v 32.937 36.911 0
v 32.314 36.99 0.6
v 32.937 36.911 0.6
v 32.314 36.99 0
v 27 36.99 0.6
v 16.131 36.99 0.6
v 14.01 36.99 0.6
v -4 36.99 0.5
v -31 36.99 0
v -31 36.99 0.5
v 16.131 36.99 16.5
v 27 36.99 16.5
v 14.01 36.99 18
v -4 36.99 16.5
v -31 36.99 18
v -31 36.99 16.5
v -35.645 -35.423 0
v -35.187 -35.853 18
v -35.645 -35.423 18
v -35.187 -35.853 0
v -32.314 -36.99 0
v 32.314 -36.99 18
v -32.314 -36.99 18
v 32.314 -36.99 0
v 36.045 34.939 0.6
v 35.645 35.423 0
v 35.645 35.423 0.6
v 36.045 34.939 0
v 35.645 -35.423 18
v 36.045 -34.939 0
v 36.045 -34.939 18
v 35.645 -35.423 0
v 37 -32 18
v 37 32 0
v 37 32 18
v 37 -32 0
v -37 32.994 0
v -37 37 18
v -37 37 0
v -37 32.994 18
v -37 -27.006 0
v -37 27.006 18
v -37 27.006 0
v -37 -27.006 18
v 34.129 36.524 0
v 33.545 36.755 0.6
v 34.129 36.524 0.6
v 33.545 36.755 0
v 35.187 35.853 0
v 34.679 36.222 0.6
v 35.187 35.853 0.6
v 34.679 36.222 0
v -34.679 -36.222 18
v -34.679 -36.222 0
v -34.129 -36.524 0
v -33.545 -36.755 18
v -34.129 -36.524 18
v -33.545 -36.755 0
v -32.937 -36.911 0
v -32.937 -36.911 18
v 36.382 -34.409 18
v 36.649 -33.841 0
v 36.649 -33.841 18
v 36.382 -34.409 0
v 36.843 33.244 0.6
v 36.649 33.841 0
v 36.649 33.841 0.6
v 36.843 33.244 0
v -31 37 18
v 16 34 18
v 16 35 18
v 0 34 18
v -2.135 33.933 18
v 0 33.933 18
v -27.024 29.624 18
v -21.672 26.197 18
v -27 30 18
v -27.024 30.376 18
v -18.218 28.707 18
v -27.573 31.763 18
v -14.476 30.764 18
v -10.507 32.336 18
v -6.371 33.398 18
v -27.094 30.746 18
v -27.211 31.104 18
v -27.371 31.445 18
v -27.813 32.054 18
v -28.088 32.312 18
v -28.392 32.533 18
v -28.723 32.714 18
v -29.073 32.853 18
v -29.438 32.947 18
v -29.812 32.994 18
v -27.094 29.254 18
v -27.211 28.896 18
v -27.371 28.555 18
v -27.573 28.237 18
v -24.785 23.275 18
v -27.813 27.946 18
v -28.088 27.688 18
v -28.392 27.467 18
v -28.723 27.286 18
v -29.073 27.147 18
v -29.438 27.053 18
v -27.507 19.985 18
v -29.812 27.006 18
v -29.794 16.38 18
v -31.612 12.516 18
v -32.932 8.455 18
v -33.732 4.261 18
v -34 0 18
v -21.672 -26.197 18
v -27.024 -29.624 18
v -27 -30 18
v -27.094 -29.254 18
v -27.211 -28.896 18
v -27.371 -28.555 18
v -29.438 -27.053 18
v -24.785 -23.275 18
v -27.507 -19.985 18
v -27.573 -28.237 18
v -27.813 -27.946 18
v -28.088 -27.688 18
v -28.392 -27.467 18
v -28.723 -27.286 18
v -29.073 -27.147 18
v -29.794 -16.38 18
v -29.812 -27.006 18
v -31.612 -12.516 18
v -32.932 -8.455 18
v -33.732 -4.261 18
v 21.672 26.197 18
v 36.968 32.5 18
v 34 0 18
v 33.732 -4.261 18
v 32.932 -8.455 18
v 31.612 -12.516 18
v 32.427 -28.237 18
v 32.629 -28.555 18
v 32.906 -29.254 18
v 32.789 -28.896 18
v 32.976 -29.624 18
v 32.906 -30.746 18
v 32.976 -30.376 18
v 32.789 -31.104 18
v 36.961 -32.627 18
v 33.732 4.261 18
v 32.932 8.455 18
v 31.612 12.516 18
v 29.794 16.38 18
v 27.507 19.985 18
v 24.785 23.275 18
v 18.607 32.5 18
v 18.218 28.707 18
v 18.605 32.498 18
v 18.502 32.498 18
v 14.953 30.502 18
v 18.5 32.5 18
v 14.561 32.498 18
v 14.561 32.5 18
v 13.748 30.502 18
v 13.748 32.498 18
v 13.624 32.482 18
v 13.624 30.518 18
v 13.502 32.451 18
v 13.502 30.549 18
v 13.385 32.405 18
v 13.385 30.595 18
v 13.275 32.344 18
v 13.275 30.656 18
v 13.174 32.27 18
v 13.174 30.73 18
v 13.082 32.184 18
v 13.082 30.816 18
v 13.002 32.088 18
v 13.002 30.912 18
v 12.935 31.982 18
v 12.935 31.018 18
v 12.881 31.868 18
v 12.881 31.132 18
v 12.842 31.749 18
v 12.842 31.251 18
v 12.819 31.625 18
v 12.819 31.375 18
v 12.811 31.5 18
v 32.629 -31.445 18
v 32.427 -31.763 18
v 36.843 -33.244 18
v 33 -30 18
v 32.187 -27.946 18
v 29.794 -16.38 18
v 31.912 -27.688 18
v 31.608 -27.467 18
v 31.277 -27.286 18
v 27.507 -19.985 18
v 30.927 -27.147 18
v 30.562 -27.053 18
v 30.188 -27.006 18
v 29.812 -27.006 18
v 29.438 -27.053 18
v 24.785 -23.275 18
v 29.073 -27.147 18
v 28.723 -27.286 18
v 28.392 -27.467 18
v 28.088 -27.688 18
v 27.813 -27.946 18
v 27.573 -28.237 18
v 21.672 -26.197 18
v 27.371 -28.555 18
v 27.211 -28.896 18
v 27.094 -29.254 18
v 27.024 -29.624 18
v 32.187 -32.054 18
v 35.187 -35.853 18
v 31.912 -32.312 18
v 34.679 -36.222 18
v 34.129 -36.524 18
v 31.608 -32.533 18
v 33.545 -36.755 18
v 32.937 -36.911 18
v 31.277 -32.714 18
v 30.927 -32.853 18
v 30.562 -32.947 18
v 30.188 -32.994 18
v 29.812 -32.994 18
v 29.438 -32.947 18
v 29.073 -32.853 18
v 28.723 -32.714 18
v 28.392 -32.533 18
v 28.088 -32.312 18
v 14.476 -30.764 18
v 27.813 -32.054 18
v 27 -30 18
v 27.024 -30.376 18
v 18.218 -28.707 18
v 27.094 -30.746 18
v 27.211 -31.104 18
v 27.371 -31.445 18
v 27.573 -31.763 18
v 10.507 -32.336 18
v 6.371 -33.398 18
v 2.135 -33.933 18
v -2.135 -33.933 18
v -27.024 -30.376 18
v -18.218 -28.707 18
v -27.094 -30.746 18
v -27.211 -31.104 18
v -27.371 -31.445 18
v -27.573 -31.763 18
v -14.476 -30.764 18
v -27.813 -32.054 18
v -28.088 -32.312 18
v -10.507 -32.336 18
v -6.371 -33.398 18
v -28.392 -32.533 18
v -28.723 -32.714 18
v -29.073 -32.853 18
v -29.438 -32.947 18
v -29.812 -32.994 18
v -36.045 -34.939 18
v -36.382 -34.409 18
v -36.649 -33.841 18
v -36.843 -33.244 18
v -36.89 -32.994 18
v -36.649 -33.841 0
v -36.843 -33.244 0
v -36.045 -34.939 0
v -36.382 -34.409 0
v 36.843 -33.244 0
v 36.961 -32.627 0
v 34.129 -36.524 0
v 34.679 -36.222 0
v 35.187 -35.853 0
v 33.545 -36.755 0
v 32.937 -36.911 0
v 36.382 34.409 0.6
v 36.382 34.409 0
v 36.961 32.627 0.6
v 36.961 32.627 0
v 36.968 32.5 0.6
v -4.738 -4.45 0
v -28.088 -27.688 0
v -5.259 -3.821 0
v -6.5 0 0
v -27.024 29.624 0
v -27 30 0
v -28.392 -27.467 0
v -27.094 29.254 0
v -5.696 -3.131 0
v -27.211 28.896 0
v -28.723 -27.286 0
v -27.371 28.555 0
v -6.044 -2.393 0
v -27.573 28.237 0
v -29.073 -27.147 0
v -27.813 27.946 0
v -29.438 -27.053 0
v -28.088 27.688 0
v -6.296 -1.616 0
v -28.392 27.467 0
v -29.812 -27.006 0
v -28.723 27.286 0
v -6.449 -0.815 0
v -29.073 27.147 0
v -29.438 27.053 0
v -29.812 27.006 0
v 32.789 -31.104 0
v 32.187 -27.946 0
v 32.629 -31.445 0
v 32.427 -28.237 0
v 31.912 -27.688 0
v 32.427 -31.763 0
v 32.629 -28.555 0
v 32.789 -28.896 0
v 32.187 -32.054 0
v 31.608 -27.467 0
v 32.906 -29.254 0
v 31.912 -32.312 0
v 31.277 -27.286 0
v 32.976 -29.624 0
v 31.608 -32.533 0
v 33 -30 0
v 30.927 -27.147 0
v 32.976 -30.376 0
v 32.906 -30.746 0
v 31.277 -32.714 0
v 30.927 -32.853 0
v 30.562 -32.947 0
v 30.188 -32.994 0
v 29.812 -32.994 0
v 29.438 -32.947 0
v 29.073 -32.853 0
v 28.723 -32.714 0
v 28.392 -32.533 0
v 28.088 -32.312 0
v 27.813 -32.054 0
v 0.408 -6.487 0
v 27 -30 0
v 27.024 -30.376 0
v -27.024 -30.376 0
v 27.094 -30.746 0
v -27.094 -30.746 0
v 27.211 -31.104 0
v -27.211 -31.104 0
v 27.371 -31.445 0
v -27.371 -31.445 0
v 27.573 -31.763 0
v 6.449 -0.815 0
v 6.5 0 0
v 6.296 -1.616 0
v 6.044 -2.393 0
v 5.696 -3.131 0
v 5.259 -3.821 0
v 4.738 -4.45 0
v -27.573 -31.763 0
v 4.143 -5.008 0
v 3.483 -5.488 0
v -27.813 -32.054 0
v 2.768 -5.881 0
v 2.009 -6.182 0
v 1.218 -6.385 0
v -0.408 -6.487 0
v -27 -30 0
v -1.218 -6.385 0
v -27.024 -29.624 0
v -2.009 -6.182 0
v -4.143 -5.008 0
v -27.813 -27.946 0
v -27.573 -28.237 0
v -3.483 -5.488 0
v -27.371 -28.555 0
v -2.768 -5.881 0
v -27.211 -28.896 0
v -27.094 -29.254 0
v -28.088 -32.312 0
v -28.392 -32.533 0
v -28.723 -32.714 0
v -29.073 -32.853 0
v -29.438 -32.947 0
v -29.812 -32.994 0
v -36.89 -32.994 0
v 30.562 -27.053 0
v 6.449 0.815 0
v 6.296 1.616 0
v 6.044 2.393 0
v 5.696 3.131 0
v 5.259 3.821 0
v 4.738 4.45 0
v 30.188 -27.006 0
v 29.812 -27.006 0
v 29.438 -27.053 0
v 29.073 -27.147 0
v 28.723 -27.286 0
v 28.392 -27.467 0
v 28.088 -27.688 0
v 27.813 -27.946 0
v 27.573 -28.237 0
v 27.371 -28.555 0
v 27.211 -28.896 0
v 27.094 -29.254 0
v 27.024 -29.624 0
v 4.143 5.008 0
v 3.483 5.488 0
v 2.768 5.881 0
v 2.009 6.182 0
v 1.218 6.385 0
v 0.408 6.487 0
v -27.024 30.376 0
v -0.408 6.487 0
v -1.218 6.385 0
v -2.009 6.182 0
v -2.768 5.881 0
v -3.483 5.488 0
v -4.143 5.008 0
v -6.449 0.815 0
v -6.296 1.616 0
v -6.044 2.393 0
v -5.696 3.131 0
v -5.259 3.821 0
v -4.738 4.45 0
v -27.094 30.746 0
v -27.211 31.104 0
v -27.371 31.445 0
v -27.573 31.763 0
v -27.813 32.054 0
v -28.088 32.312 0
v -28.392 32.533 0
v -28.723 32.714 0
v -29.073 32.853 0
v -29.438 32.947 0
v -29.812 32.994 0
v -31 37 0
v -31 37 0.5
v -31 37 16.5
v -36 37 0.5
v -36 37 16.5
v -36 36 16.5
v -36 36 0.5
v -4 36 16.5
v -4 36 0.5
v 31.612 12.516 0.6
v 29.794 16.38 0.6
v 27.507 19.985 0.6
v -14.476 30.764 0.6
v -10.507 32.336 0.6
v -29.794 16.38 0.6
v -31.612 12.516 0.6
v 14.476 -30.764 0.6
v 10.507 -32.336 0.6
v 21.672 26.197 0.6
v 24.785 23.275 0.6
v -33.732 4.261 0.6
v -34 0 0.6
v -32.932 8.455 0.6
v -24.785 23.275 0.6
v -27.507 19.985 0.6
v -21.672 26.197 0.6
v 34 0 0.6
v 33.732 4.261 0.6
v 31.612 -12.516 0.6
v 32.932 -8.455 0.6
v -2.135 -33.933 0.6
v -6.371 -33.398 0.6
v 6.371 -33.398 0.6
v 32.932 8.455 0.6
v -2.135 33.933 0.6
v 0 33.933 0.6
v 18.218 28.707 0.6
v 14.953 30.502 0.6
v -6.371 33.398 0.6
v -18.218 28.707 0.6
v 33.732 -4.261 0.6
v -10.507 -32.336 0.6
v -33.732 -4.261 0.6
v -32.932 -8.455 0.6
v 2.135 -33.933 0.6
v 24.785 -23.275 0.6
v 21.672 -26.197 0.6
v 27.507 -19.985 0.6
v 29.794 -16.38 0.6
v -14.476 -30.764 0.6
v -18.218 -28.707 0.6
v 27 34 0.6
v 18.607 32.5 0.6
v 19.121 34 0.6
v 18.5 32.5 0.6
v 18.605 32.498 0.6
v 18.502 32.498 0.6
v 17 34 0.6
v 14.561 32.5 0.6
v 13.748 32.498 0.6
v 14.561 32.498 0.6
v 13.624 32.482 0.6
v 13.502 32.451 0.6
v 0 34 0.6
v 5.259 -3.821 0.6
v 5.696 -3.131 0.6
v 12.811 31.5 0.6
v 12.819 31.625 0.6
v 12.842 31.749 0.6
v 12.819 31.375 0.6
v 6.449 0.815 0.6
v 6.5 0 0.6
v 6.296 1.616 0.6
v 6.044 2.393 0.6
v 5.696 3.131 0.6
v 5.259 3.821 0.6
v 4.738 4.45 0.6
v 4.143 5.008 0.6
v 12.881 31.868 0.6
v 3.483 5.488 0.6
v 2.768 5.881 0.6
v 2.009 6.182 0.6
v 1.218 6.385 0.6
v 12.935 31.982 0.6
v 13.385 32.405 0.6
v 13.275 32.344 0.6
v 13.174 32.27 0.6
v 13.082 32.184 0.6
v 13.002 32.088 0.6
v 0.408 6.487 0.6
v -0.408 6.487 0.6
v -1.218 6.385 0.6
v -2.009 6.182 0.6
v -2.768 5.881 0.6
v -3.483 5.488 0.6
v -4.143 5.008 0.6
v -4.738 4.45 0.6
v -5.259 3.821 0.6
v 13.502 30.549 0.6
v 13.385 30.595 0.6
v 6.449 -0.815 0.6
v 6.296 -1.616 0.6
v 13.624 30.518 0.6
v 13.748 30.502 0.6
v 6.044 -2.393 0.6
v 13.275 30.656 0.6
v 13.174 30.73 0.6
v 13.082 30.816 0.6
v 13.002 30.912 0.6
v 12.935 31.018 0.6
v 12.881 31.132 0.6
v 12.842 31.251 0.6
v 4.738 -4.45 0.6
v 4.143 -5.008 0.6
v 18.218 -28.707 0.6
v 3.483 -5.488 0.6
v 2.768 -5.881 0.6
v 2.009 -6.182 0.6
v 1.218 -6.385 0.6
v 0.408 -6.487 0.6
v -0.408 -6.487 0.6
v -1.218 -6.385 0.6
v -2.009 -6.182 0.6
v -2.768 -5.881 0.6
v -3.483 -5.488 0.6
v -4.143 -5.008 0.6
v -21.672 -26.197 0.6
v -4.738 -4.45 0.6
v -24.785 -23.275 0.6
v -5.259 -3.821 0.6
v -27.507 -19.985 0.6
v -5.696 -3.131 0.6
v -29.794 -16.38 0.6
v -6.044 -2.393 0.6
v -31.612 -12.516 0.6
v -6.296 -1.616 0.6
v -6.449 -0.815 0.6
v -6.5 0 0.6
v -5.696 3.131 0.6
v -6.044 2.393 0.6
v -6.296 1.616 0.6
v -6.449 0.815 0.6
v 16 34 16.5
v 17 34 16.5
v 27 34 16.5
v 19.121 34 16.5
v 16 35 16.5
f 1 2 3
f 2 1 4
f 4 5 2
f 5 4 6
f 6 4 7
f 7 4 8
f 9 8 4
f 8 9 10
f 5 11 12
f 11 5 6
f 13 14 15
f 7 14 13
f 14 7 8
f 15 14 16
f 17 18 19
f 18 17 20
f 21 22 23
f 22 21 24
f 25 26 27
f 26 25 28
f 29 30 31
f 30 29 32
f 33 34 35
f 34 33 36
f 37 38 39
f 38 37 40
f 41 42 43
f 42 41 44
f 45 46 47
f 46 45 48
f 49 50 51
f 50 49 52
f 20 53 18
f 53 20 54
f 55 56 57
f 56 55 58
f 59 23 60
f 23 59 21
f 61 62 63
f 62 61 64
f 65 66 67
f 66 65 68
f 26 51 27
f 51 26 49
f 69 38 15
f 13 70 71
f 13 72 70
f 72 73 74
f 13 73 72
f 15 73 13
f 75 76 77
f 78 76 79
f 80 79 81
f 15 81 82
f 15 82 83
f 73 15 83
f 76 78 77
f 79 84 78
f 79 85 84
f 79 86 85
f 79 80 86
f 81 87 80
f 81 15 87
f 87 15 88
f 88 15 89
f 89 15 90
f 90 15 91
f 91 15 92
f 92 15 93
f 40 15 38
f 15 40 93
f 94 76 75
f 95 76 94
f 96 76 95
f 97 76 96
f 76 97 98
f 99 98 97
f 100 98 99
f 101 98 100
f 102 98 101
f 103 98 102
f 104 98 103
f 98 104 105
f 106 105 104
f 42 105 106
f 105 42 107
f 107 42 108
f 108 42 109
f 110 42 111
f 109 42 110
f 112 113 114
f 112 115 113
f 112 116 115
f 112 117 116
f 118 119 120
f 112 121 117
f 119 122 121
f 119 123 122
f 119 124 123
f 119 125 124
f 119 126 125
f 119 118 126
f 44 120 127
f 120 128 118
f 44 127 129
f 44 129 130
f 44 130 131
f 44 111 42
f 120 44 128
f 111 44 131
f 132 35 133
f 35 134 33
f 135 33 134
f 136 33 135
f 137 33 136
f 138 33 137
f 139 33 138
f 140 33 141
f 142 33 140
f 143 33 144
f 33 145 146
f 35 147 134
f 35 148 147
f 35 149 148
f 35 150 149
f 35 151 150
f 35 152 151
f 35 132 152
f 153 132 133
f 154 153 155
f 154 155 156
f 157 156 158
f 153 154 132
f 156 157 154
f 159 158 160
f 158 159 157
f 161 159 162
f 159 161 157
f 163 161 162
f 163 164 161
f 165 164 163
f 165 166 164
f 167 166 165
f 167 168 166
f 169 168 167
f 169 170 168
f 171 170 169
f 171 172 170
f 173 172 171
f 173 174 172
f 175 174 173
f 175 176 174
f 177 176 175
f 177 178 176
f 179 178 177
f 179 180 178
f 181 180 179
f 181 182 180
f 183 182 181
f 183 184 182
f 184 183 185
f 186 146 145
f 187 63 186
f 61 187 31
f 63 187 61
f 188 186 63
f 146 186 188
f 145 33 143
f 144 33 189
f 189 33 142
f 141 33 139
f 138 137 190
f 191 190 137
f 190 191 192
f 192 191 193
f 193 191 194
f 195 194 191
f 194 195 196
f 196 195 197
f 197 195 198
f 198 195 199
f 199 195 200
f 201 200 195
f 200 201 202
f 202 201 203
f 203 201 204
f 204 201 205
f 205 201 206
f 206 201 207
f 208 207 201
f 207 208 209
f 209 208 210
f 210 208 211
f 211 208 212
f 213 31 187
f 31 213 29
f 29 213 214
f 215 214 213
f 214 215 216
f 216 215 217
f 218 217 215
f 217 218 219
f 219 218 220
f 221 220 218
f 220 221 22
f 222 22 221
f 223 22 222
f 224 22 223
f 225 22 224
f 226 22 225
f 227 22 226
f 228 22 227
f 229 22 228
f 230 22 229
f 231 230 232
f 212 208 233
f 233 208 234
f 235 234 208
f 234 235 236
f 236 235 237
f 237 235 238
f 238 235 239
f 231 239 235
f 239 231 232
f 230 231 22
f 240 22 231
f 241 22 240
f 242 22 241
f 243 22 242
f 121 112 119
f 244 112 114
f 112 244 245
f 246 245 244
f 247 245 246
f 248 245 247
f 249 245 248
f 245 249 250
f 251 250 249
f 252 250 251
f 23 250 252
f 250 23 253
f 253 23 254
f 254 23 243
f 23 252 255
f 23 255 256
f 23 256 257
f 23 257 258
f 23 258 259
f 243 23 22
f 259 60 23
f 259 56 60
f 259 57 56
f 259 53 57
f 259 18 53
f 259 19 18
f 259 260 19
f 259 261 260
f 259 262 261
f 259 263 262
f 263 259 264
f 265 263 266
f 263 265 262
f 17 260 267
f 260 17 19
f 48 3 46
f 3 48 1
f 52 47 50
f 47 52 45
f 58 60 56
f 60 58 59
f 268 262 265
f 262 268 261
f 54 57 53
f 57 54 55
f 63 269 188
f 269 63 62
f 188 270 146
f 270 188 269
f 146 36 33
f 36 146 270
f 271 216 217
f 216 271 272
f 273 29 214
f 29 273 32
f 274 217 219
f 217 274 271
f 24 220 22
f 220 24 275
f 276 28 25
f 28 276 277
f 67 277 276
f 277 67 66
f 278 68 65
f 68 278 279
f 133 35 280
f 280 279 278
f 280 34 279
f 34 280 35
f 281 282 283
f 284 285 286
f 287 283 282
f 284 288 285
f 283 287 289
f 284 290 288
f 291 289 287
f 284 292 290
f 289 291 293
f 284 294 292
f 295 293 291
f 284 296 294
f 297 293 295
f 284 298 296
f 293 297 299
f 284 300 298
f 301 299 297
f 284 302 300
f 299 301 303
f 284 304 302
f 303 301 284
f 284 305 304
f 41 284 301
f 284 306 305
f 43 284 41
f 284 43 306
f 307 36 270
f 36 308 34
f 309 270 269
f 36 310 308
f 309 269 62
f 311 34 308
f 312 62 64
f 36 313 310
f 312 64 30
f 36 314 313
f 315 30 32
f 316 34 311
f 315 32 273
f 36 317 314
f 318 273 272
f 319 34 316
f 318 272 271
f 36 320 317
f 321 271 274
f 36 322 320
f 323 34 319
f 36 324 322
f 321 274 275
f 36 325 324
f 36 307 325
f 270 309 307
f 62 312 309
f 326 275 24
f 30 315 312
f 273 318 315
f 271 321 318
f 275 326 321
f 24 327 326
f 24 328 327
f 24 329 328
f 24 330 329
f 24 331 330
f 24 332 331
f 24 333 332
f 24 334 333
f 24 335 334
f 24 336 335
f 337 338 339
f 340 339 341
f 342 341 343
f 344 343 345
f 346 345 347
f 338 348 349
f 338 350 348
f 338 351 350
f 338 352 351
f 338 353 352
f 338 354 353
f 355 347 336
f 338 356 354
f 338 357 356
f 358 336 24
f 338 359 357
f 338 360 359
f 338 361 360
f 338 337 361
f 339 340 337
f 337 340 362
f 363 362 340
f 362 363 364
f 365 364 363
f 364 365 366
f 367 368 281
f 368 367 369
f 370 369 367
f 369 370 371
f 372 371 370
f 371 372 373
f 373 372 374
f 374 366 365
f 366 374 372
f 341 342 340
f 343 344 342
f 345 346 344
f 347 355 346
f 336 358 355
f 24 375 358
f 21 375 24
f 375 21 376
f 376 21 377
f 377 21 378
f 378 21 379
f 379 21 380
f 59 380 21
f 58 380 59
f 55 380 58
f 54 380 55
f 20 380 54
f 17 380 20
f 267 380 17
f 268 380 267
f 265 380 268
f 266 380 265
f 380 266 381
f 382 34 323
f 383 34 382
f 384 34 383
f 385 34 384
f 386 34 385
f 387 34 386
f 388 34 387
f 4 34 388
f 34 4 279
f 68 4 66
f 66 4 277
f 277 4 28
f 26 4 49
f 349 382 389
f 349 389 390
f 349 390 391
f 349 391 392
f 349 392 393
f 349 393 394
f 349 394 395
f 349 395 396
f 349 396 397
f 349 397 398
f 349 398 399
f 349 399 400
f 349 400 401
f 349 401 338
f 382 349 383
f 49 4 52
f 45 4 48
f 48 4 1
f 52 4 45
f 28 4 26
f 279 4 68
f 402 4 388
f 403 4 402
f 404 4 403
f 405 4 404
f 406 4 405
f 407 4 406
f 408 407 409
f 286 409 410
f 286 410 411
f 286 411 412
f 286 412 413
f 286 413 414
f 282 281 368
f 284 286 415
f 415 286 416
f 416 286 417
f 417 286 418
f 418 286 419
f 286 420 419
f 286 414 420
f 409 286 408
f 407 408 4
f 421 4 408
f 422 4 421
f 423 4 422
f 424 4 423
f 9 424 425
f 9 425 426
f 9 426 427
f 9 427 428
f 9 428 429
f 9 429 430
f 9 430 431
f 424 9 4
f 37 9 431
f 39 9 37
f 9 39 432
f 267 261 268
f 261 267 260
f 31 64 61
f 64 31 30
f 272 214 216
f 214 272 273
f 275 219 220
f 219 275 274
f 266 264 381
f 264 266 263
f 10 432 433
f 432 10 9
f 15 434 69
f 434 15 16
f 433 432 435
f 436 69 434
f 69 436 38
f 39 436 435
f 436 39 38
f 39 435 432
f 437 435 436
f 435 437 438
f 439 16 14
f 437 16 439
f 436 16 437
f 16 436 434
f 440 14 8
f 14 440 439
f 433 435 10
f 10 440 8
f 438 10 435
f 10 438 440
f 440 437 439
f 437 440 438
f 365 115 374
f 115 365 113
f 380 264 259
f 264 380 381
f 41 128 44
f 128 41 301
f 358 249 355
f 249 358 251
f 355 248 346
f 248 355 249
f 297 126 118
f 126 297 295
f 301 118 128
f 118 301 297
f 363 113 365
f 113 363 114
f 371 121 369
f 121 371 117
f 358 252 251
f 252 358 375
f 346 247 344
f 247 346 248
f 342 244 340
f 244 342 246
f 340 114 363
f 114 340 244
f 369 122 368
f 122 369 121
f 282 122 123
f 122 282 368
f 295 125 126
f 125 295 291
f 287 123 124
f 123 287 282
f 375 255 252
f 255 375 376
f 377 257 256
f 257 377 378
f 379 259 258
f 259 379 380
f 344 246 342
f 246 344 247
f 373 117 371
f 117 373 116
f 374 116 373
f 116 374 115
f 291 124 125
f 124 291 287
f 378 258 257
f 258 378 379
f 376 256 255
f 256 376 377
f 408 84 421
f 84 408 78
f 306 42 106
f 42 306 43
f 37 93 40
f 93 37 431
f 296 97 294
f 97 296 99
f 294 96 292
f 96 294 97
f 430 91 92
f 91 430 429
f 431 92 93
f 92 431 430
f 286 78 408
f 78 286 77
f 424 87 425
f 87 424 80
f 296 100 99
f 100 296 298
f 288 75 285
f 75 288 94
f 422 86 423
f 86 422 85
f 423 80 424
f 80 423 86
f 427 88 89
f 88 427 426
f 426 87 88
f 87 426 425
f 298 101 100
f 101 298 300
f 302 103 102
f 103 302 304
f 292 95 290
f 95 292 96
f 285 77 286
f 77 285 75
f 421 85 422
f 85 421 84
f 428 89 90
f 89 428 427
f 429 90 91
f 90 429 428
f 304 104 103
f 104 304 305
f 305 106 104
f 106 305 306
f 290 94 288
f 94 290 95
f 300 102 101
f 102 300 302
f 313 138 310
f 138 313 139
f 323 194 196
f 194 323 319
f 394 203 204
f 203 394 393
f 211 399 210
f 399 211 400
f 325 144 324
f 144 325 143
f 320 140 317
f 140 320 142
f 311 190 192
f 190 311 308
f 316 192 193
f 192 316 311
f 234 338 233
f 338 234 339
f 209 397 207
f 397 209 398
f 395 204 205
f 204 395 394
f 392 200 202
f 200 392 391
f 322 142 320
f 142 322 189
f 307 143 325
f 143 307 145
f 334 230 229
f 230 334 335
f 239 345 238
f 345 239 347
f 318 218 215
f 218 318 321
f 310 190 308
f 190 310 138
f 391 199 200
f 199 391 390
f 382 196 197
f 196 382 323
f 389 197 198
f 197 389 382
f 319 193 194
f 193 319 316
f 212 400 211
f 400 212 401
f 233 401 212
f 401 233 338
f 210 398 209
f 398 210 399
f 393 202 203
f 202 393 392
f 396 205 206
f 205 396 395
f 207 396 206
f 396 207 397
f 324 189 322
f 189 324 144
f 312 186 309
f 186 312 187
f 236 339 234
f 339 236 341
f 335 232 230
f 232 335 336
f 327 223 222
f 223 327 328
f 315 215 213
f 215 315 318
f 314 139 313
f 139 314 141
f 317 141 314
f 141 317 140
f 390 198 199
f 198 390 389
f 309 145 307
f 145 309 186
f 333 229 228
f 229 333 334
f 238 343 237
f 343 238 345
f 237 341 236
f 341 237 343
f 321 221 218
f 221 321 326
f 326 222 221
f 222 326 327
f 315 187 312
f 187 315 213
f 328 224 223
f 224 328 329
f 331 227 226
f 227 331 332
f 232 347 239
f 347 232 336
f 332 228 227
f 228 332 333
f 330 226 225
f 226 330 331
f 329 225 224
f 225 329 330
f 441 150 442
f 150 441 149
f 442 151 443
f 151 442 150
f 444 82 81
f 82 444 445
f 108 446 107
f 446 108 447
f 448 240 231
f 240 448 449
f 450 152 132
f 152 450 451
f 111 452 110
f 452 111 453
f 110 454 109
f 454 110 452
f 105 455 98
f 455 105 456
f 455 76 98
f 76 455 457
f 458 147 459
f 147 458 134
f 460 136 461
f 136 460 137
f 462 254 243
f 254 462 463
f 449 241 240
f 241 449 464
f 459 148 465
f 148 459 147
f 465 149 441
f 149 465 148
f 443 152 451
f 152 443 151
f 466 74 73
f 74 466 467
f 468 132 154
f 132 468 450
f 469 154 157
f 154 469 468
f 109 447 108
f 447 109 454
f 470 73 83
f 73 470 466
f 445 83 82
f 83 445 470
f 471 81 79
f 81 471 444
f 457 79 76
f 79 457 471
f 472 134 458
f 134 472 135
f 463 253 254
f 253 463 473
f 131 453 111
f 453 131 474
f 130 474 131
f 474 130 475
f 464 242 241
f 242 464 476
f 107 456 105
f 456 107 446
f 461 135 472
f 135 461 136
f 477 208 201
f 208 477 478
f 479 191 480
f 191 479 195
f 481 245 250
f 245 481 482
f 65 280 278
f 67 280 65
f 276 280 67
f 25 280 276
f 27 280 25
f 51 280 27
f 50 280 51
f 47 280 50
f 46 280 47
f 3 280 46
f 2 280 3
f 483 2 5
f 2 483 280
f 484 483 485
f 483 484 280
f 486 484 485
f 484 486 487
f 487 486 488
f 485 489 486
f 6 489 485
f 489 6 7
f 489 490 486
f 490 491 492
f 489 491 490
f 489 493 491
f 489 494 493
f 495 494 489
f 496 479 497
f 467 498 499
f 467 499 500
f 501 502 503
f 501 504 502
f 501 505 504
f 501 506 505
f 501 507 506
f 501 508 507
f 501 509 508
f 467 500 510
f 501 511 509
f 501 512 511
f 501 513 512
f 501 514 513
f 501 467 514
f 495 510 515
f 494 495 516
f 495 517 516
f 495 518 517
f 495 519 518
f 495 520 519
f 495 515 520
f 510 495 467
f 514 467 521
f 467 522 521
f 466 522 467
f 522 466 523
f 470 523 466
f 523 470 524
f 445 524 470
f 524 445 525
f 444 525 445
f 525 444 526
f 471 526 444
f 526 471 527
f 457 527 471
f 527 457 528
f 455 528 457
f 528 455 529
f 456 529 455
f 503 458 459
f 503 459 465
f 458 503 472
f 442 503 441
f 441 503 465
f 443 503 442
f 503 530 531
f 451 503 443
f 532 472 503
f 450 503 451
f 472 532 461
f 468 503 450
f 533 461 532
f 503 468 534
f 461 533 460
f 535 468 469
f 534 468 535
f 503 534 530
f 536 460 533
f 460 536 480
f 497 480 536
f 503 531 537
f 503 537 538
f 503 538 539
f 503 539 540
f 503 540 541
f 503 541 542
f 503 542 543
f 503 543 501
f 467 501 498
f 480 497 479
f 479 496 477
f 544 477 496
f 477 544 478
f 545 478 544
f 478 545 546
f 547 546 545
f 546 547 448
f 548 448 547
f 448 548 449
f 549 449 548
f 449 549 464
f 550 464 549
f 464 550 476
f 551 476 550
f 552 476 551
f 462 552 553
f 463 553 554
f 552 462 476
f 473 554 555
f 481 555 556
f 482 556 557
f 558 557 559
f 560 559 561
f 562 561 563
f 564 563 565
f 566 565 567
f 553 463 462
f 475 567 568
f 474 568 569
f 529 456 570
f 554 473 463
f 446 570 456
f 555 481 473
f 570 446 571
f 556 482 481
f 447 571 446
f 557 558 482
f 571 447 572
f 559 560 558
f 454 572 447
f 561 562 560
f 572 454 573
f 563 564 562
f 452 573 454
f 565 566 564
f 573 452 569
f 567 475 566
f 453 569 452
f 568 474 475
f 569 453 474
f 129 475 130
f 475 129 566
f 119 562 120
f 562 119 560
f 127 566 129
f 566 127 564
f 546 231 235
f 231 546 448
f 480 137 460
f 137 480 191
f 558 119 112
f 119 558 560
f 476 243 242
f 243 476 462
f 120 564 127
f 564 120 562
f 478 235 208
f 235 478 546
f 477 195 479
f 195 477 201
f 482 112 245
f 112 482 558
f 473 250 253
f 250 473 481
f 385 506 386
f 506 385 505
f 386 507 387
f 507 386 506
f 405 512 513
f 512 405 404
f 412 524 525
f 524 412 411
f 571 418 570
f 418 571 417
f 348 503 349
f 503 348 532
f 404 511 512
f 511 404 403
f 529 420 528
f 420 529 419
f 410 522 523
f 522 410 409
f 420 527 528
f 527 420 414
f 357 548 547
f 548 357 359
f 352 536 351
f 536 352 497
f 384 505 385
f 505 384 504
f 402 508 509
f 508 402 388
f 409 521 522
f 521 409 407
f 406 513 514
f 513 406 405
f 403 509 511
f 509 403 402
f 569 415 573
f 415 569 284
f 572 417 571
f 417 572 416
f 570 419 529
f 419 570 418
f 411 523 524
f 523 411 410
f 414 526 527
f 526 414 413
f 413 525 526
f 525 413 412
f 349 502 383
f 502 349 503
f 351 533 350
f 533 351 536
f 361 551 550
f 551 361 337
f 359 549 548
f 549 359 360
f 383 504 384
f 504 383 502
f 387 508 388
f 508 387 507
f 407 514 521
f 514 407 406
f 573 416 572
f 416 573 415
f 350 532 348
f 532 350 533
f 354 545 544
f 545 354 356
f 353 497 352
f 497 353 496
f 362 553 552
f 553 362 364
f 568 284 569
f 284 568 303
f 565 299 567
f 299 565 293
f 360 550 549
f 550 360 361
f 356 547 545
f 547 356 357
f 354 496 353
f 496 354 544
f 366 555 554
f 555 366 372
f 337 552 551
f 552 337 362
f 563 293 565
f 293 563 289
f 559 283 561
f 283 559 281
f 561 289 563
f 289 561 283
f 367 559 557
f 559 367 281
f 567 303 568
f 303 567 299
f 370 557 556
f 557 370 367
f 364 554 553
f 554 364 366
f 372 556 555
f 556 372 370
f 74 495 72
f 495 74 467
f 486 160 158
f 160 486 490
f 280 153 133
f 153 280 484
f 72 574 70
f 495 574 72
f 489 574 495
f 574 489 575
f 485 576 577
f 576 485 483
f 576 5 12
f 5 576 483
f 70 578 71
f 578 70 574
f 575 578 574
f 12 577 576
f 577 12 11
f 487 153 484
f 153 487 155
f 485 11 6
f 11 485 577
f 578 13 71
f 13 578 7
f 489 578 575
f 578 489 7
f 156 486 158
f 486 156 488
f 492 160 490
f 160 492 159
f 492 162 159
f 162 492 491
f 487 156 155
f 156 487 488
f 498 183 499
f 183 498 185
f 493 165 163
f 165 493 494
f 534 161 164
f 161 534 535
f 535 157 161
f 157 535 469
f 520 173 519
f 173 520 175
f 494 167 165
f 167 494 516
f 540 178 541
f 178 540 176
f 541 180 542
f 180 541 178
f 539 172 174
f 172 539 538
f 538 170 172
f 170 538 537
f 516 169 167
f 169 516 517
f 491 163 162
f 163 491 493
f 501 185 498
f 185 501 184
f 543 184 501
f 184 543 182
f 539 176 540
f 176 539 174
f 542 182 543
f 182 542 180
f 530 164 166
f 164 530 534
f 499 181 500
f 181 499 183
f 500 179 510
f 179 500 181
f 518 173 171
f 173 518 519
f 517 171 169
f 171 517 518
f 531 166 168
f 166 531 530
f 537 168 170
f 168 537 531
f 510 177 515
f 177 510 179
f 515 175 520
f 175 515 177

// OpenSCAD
$fn = 50;


union() {
	difference() {
		union() {
			translate(v = [0, 0, 0]) {
				rotate(a = [0, 0, 0]) {
					hull() {
						translate(v = [-32.0000000000, 32.0000000000, 0]) {
							rotate(a = [0, 0, 0]) {
								translate(v = [0, 0, 0]) {
									rotate(a = [0, 0, 0]) {
										cylinder(h = 18, r = 5);
									}
								}
							}
						}
						translate(v = [32.0000000000, 32.0000000000, 0]) {
							rotate(a = [0, 0, 0]) {
								translate(v = [0, 0, 0]) {
									rotate(a = [0, 0, 0]) {
										cylinder(h = 18, r = 5);
									}
								}
							}
						}
						translate(v = [-32.0000000000, -32.0000000000, 0]) {
							rotate(a = [0, 0, 0]) {
								translate(v = [0, 0, 0]) {
									rotate(a = [0, 0, 0]) {
										cylinder(h = 18, r = 5);
									}
								}
							}
						}
						translate(v = [32.0000000000, -32.0000000000, 0]) {
							rotate(a = [0, 0, 0]) {
								translate(v = [0, 0, 0]) {
									rotate(a = [0, 0, 0]) {
										cylinder(h = 18, r = 5);
									}
								}
							}
						}
					}
				}
			}
			translate(v = [-37.0000000000, 31.0000000000, 0]) {
				rotate(a = [0, 0, 0]) {
					cube(size = [6, 6, 18]);
				}
			}
		}
		union() {
			#translate(v = [-36.0000000000, 36.0000000000, 0.5000000000]) {
				rotate(a = [0, 0, 0]) {
					cube(size = [32, 1, 16]);
				}
			}
			translate(v = [-37.5000000000, -30.0000000000, -125]) {
				rotate(a = [0, 0, 0]) {
					hull() {
						translate(v = [7.5000000000, 0, 0]) {
							rotate(a = [0, 0, 0]) {
								translate(v = [0, 0, 0]) {
									rotate(a = [0, 0, 0]) {
										cylinder(h = 250, r = 3.0000000000);
									}
								}
							}
						}
						translate(v = [-7.5000000000, 0, 0]) {
							rotate(a = [0, 0, 0]) {
								translate(v = [0, 0, 0]) {
									rotate(a = [0, 0, 0]) {
										cylinder(h = 250, r = 3.0000000000);
									}
								}
							}
						}
					}
				}
			}
			translate(v = [-37.5000000000, 30.0000000000, -125]) {
				rotate(a = [0, 0, 0]) {
					hull() {
						translate(v = [7.5000000000, 0, 0]) {
							rotate(a = [0, 0, 0]) {
								translate(v = [0, 0, 0]) {
									rotate(a = [0, 0, 0]) {
										cylinder(h = 250, r = 3.0000000000);
									}
								}
							}
						}
						translate(v = [-7.5000000000, 0, 0]) {
							rotate(a = [0, 0, 0]) {
								translate(v = [0, 0, 0]) {
									rotate(a = [0, 0, 0]) {
										cylinder(h = 250, r = 3.0000000000);
									}
								}
							}
						}
					}
				}
			}
			translate(v = [30.0000000000, -30.0000000000, -125.0000000000]) {
				rotate(a = [0, 0, 0]) {
					cylinder(h = 250, r = 3.0000000000);
				}
			}
			translate(v = [0, 0, 0.6000000000]) {
				rotate(a = [0, 0, 0]) {
					cylinder(h = 20.4000000000, r = 34.0000000000);
				}
			}
			translate(v = [0, 0, -9.0000000000]) {
				rotate(a = [0, 0, 0]) {
					cylinder(h = 18, r = 6.5000000000);
				}
			}
			translate(v = [0.0000000000, 32.5000000000, 0.6000000000]) {
				rotate(a = [0, 0, 0]) {
					cube(size = [37.0000000000, 1.5000000000, 20.4000000000]);
				}
			}
			translate(v = [27.0000000000, 32.5000000000, 0.6000000000]) {
				rotate(a = [0, 0, 0]) {
					cube(size = [10, 4.5000000000, 20.4000000000]);
				}
			}
			translate(v = [16.0000000000, 32.5000000000, 16.5000000000]) {
				rotate(a = [0, 0, 0]) {
					cube(size = [21, 4.5000000000, 1.5000000000]);
				}
			}
			translate(v = [13.2500000000, 37.7500000000, 0.6000000000]) {
				rotate(a = [0, 0, -45]) {
					cube(size = [7.5000000000, 1.5000000000, 20.4000000000]);
				}
			}
			translate(v = [7.0610000000, 30.5000000000, 0.6000000000]) {
				rotate(a = [0, 0, 0]) {
					cube(size = [7.5000000000, 2, 17.4000000000]);
				}
			}
		}
	}
	union() {
		translate(v = [16.3110000000, 31.5000000000, 0]) {
			rotate(a = [0, 0, 0]) {
				hull() {
					translate(v = [2.5000000000, 0, 0]) {
						rotate(a = [0, 0, 0]) {
							#translate(v = [0, 0, 0]) {
								rotate(a = [0, 0, 0]) {
									cylinder(h = 18, r = 1.0000000000);
								}
							}
						}
					}
					translate(v = [-2.5000000000, 0, 0]) {
						rotate(a = [0, 0, 0]) {
							#translate(v = [0, 0, 0]) {
								rotate(a = [0, 0, 0]) {
									cylinder(h = 18, r = 1.0000000000);
								}
							}
						}
					}
				}
			}
		}
	}
}
